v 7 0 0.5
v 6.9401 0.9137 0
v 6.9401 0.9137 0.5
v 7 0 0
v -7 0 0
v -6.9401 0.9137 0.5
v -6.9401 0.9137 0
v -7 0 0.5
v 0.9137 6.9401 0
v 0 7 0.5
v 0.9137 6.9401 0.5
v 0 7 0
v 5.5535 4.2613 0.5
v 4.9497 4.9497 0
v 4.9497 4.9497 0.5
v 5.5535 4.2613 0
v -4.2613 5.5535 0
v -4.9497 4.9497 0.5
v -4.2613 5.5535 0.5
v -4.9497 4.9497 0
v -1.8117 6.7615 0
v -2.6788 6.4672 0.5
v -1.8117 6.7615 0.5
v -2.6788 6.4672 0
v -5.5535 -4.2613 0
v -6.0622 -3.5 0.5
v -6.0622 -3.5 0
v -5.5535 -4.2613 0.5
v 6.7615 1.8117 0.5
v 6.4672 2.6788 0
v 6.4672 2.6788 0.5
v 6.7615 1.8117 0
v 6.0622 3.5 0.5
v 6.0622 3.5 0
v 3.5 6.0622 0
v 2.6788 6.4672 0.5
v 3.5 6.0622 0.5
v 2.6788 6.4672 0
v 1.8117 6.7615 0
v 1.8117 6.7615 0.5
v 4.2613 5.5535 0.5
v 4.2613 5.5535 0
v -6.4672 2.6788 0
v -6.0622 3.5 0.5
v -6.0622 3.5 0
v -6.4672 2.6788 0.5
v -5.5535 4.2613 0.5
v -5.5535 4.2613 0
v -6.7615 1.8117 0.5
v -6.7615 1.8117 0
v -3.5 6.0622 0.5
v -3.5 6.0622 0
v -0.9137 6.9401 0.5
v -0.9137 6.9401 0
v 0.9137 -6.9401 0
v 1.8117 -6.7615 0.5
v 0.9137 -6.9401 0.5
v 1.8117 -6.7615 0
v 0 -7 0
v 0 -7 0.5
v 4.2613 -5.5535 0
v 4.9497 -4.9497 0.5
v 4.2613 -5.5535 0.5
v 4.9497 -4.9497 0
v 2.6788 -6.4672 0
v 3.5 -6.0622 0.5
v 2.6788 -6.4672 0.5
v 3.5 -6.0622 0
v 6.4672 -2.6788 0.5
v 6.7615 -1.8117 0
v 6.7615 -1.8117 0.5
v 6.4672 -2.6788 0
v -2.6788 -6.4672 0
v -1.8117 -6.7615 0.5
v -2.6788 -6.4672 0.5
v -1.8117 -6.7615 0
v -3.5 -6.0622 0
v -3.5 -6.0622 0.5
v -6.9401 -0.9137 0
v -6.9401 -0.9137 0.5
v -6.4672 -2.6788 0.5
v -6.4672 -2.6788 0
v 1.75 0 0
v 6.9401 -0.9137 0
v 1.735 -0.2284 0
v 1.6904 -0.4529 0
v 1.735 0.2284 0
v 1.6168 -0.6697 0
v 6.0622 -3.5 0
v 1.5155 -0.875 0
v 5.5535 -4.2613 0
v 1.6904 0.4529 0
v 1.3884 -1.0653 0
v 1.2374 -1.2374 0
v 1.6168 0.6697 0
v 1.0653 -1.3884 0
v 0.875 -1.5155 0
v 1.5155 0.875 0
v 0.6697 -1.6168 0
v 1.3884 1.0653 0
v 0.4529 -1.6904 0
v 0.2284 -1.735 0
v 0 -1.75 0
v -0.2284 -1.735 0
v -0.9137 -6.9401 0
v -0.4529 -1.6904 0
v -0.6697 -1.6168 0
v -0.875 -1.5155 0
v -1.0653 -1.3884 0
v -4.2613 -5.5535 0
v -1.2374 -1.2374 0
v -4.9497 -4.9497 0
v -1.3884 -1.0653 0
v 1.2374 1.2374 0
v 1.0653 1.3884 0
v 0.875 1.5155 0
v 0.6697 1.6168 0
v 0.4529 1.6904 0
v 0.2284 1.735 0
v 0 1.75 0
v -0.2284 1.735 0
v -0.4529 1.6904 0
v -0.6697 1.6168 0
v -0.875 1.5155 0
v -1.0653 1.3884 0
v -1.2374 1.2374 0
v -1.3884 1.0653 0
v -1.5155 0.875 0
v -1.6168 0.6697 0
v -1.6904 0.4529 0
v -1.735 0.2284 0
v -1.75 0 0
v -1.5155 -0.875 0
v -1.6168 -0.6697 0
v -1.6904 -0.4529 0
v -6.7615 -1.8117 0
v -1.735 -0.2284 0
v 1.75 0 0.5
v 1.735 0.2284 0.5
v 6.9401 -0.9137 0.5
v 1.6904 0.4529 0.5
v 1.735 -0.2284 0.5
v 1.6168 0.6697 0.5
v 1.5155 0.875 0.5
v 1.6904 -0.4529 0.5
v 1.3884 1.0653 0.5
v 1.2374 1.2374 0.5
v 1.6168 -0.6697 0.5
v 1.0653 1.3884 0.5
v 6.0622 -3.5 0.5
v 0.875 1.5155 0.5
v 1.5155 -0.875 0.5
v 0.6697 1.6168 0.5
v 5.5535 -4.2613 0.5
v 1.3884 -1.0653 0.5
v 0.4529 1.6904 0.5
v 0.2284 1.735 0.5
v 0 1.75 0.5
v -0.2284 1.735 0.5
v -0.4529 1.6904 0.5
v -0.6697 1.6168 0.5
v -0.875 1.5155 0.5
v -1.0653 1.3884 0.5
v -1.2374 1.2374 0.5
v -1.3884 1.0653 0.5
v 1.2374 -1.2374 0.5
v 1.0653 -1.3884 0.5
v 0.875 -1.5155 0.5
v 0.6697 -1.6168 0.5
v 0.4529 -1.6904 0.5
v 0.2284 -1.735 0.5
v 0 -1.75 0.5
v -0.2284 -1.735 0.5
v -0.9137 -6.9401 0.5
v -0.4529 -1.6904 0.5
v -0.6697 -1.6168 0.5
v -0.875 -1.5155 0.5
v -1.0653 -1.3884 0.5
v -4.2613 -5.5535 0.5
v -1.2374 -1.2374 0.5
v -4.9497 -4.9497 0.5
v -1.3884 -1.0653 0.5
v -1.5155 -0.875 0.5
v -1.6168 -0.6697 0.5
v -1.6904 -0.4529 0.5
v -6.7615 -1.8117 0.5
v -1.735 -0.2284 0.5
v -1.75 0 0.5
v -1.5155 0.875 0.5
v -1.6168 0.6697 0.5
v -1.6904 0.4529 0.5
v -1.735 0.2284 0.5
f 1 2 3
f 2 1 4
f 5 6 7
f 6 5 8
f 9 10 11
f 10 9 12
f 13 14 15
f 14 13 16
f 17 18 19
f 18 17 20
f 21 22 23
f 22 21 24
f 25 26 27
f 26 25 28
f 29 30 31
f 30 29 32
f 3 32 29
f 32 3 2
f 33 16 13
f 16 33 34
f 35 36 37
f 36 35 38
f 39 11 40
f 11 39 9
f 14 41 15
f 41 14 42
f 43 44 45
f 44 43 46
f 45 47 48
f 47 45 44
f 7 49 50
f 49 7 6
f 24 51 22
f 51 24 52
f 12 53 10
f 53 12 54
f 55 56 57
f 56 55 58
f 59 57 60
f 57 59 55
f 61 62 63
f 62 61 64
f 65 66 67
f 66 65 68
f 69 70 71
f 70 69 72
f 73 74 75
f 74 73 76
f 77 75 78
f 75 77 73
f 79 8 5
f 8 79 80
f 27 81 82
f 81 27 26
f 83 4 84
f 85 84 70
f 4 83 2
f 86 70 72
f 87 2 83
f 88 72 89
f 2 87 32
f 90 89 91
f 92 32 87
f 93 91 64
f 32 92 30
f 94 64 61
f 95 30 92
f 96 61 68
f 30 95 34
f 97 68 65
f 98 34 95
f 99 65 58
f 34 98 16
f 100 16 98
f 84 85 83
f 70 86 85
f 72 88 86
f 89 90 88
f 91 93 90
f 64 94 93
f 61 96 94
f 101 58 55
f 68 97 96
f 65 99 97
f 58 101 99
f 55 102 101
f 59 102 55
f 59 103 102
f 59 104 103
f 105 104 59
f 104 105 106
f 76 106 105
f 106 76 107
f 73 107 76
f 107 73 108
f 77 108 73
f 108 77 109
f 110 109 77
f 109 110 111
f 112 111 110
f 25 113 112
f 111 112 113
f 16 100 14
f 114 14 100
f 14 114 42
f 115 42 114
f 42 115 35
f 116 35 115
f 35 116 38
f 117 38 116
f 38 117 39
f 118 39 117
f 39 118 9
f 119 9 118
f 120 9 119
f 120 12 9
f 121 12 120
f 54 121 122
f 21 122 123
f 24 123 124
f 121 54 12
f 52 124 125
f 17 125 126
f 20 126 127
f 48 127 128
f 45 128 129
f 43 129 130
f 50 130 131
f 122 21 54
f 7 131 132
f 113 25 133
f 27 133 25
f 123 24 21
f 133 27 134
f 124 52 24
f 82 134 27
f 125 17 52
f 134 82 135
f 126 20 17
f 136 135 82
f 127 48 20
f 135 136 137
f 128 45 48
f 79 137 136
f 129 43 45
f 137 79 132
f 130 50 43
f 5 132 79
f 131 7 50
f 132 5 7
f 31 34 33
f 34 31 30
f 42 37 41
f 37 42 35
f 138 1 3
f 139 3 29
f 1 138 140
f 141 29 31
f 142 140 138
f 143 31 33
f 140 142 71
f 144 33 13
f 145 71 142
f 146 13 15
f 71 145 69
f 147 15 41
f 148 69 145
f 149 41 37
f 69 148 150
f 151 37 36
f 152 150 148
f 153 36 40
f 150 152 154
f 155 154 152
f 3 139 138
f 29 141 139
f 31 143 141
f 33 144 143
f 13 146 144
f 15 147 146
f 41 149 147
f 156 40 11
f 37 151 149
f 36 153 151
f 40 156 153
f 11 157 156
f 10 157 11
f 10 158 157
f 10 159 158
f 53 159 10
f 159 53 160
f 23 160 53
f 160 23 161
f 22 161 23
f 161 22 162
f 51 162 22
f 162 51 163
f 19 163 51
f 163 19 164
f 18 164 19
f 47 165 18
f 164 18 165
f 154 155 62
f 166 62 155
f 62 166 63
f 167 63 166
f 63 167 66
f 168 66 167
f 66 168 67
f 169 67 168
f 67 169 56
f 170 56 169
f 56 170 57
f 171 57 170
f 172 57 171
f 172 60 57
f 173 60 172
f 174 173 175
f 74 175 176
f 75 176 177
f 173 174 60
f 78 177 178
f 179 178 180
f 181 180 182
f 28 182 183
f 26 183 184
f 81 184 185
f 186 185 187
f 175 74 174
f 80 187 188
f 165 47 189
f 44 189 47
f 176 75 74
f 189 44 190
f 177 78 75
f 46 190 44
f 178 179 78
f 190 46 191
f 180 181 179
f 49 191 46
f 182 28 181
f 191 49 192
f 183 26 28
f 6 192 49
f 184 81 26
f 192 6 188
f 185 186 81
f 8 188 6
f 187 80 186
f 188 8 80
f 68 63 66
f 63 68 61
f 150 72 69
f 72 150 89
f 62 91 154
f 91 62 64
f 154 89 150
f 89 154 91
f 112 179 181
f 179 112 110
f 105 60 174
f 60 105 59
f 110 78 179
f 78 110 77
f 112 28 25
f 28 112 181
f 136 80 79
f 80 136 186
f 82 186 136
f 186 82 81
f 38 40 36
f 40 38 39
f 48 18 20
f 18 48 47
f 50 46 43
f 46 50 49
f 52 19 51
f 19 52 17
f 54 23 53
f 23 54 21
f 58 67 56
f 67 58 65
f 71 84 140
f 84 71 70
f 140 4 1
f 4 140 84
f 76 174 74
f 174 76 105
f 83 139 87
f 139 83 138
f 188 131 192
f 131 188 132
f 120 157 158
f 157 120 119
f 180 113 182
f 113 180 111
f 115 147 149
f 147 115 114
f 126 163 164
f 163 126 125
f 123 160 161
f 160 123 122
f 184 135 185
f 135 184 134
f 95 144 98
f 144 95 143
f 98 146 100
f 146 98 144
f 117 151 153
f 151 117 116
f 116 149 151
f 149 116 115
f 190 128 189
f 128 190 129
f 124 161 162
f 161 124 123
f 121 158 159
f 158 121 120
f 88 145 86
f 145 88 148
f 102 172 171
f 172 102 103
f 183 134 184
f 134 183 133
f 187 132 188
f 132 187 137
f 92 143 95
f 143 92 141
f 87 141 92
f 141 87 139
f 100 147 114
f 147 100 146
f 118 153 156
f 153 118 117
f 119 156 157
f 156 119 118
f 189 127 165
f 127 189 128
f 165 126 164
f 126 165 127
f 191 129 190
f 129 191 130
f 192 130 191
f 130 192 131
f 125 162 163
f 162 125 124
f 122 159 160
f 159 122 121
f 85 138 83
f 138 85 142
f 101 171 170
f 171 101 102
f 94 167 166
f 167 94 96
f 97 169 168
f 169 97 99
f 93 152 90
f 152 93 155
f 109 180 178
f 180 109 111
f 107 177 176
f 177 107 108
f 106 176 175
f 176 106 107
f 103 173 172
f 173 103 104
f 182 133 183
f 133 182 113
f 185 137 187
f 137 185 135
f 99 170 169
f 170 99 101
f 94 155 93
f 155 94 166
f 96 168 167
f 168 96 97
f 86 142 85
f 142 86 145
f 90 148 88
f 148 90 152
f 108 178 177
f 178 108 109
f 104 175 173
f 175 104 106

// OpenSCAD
// file: parameters.scad
// =============================================================================
// Gen-BT — nightly 2026-10-09 (physics_scorer, honest magpylib watts)
// The low-cogging 8-pole / 9-coil line (winding factor 0.945) moved to a larger R53 pole ring with 36–70 mm bobbins and a 13.5 mm build, the best 9-coil row in tonight's scans (Gen-BQ was R52 / 35–70 / 12.6). Smoother to spin by hand and quieter, but still well below 6 coils under the wire budget.
// Clocking 0 deg (magnets N facing S) + D-flat keyed bore + index notch + flip-symmetric hole map.
// Windable 2-piece bobbin; turns = physics_scorer turns_fit; copper only between flanges.
// Steel back-iron: 2× Ø140 × 4.76 mm (3/16") mild-steel discs (steel_backiron_disc.dxf); magnets sit ON the steel
// (through-pockets) -> score with --back-iron.
// =============================================================================
topology            = "dual_rotor";

// --- Wire / winding (physics_scorer winding-fit) -------------------------------
wire_awg            = 26;
wire_od             = 0.45;     // insulated OD mm (bare 0.405)
fill_realistic      = 0.65;     // insulated-wire area / window (DENSE layered wind with a jig; scorer cap 0.65)
turns               = 521;       // = physics_scorer turns_fit (do NOT raise)
coil_former_type    = "bobbin";
coil_core_inset     = 13.50;     // radial copper build: hub = copper boundary inset by this
wind_build_axial    = 0.0;      // nothing proud of the flanges
wind_build_radial   = 0.0;

// --- Bobbin (base + lid) ---------------------------------------------------------
coil_id_r           = 36.00;    // copper boundary sector
coil_od_r           = 70.00;
span_deg            = 34.75;    // = pitch - 2*asin((wall+0.85)/coil_id_r) -> >=1.2 mm stator web
former_web          = 9.45;     // copper height between flanges (TALL copper: steel keeps Bz up)
flange_t            = 0.80;     // >= 0.8 mm FDM wall rule (tall winds push on the flanges)
wall                = 0.80;     // flange lip beyond copper
former_bare_h       = former_web + 2 * flange_t;
coil_envelope_h     = former_bare_h + 2 * wind_build_axial;
tab_w               = 7.0;
tab_len             = 7.0;
tab_h               = former_bare_h / 2;
pin_d               = 1.9;      // 1.75 mm filament locating pin
coil_mount_r        = coil_od_r + 0.2 + 4.0;
lead_y              = 1.6;
lead_slot_w         = 0.9;
lead_groove_d       = 0.6;

// --- Gap -------------------------------------------------------------------------
run_clear           = 0.50;     // rotor face -> flange
gap_spacer_h        = run_clear + wind_build_axial;
m2m                 = coil_envelope_h + 2 * run_clear;   // rotor face to rotor face (= gap_sleeve length)

// --- Stator ----------------------------------------------------------------------
coil_stations       = 9;
bay_clear           = 0.25;
stator_thick        = former_bare_h;                        // bobbins flush both faces
stator_od           = 162.0;
shaft_clear_stator  = 14.0;     // stator is static; gap sleeve OD 12 spins inside

// --- Rotor(s) --------------------------------------------------------------------
magnet_Br           = 1.43;     // N52
magnet_d_large      = 20.0;
magnet_h_large      = 5.0;      // one O20x5 per pocket
magnet_h_small      = 5.0;      // one O5x5 per pocket
halbach_magnetisation = "diametric"; // O5x5 assist magnets MUST be DIAMETRICALLY magnetised (tangential)
rotor_b_same_axis   = true;     // same-index magnets share one axis: N faces S across the gap
large_pocket_d      = 20.3;
small_pocket_d      = 5.3;
pocket_h            = 5.00;     // THROUGH the carrier: magnet back face sits on the steel disc (FLUSH seat: carrier = magnet height, magnet face level with the rotor face)
large_n             = 8;
R_large             = 53.0;
R_small_inner       = 45.0;
R_small_mid         = 53.0;
R_small_outer       = 61.0;
small_r_list        = [R_small_inner, R_small_mid, R_small_outer];   // O5 pockets between poles
carrier_od          = 140.0;
carrier_thick       = pocket_h;
hub_h               = 12.0;     // > steel_t + insert: radial set-screw clears the steel
hub_od              = 24.0;     // slim hub so the M4 brace rods fit at R~18 inside the coil ring
hub_insert_d        = 4.0;      // M3 heat-set insert, radial, bears on the D-flat
rotor_b_offset_deg  = 0.0;      // CLOCKING: magnets directly opposite
shaft_key           = "dflat";
dflat_depth         = 0.5;      // 8 mm shaft with 0.5 mm flat (7.5 across flat)
index_notch_d       = 3.0;

// --- Steel back-iron (buyable laser-cut) -------------------------------------------
steel_t             = 4.76;      // mild steel thickness (image method ignores it; sized from steel_flux.py so the return path stays well below saturation)
steel_center_hole   = 26.0;     // slips over the rotor hub (OD 24)
steel_od            = carrier_od;   // steel disc OD = rotor carrier OD

// --- Modular MAX interface ----------------------------------------------------------
shaft_bore          = 8.35;
dflat_x             = 4.0 - dflat_depth + (shaft_bore - 8.0) / 2;
bearing_d           = 21.85;
bearing_h           = 7.2;
m3_clear            = 3.5;
bolt_r_inner        = 30.0;     // M3 steel-disc clamp bolts (inside the magnet ring)
bolt_n_inner        = 4;
bolt_inner_angles   = [0, 90, 180, 270];
bolt_r_outer        = 66.0;     // M3 steel-disc clamp bolts (outside the magnet ring)
bolt_outer_angles   = [45, 135, 225, 315];
flange_bolt_r       = 76.0;     // frame rods: OUTSIDE the rotor OD (rotors spin inside them)
flange_bolt_n       = 9;
flange_bolt_offset  = 20.00;    // between coil stations -> never cuts a lead groove/tab
brace_r             = 18.0;
brace_d             = 4.3;      // temporary M4 jack rods (assembly only)
brace_n             = 4;
brace_angles        = [45, 135, 225, 315];          // flip-symmetric

spacer_pad_od       = 14.0;
spacer_pad_id       = m3_clear;
endbell_od          = 162.0;
endbell_thick       = 8.0;
endbell_shaft_clear = 10.0;
collar_h            = 10.0;
standoff_od         = 9.0;
frame_standoff_h    = run_clear + carrier_thick + hub_h + collar_h + 2.0;
sleeve_od           = 12.0;
plate_max_mm        = 410;

$fn = 64;
// main file
// Gen-BT — assembly gap shim, h = run_clear (rotor face -> flange); copper is inside the flanges
include <parameters.scad>;
$fn = 48;
difference() {
    cylinder(d=spacer_pad_od, h=gap_spacer_h);
    translate([0, 0, -0.1]) cylinder(d=spacer_pad_id, h=gap_spacer_h + 0.2);
}
